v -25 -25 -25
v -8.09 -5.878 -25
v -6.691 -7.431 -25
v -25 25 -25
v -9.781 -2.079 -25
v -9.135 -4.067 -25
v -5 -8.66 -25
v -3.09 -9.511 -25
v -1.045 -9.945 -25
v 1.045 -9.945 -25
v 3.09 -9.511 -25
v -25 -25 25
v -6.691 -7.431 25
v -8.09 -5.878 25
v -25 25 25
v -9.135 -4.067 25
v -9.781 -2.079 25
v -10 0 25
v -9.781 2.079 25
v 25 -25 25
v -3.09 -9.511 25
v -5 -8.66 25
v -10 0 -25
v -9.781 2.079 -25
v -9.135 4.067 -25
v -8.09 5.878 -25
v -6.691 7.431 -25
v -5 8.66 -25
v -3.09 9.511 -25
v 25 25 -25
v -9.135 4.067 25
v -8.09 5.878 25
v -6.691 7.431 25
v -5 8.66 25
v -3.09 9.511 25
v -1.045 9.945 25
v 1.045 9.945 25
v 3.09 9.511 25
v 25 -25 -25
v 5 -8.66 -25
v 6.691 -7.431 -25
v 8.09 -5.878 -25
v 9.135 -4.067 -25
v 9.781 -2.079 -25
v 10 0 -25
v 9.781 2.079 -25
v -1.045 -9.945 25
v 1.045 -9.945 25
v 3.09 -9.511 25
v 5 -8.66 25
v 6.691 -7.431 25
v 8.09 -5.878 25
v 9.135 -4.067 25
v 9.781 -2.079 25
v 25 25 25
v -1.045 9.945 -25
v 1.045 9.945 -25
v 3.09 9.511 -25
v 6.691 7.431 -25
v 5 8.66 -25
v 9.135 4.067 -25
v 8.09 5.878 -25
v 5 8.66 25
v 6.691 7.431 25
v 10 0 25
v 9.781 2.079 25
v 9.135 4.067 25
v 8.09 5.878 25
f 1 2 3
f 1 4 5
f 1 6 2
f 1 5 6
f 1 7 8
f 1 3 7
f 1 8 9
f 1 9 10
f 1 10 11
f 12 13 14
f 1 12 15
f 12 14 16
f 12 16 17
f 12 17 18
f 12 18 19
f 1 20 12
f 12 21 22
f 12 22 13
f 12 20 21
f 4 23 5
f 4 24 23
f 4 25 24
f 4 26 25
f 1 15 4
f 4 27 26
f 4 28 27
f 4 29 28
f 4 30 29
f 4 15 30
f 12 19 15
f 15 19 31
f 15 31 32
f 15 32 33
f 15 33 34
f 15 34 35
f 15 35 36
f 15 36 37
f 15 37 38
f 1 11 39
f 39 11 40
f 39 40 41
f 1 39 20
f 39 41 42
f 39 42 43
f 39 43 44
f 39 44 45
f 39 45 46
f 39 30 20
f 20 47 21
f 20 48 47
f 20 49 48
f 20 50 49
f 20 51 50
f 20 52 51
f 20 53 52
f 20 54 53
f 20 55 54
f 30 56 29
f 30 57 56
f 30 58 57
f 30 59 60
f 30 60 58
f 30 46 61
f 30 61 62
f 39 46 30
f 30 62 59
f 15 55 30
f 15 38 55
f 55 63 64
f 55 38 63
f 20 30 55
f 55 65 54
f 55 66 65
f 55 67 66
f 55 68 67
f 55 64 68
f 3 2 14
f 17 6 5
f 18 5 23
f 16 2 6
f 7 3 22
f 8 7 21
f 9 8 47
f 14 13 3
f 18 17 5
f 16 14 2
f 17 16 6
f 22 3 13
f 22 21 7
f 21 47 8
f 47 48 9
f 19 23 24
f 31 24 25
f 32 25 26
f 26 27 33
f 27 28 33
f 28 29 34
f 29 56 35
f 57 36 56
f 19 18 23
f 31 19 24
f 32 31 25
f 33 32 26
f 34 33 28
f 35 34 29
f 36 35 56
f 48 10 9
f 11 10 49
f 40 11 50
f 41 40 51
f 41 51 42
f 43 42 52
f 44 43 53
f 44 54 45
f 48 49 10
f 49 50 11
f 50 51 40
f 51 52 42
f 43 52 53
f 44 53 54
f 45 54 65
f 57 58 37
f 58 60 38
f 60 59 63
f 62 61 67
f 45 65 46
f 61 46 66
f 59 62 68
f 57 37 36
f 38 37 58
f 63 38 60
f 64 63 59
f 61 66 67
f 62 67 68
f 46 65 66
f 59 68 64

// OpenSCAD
difference() {
  cube([50, 50, 50], center = true);
  cylinder(h = 50, r = 10, center = true);
}
